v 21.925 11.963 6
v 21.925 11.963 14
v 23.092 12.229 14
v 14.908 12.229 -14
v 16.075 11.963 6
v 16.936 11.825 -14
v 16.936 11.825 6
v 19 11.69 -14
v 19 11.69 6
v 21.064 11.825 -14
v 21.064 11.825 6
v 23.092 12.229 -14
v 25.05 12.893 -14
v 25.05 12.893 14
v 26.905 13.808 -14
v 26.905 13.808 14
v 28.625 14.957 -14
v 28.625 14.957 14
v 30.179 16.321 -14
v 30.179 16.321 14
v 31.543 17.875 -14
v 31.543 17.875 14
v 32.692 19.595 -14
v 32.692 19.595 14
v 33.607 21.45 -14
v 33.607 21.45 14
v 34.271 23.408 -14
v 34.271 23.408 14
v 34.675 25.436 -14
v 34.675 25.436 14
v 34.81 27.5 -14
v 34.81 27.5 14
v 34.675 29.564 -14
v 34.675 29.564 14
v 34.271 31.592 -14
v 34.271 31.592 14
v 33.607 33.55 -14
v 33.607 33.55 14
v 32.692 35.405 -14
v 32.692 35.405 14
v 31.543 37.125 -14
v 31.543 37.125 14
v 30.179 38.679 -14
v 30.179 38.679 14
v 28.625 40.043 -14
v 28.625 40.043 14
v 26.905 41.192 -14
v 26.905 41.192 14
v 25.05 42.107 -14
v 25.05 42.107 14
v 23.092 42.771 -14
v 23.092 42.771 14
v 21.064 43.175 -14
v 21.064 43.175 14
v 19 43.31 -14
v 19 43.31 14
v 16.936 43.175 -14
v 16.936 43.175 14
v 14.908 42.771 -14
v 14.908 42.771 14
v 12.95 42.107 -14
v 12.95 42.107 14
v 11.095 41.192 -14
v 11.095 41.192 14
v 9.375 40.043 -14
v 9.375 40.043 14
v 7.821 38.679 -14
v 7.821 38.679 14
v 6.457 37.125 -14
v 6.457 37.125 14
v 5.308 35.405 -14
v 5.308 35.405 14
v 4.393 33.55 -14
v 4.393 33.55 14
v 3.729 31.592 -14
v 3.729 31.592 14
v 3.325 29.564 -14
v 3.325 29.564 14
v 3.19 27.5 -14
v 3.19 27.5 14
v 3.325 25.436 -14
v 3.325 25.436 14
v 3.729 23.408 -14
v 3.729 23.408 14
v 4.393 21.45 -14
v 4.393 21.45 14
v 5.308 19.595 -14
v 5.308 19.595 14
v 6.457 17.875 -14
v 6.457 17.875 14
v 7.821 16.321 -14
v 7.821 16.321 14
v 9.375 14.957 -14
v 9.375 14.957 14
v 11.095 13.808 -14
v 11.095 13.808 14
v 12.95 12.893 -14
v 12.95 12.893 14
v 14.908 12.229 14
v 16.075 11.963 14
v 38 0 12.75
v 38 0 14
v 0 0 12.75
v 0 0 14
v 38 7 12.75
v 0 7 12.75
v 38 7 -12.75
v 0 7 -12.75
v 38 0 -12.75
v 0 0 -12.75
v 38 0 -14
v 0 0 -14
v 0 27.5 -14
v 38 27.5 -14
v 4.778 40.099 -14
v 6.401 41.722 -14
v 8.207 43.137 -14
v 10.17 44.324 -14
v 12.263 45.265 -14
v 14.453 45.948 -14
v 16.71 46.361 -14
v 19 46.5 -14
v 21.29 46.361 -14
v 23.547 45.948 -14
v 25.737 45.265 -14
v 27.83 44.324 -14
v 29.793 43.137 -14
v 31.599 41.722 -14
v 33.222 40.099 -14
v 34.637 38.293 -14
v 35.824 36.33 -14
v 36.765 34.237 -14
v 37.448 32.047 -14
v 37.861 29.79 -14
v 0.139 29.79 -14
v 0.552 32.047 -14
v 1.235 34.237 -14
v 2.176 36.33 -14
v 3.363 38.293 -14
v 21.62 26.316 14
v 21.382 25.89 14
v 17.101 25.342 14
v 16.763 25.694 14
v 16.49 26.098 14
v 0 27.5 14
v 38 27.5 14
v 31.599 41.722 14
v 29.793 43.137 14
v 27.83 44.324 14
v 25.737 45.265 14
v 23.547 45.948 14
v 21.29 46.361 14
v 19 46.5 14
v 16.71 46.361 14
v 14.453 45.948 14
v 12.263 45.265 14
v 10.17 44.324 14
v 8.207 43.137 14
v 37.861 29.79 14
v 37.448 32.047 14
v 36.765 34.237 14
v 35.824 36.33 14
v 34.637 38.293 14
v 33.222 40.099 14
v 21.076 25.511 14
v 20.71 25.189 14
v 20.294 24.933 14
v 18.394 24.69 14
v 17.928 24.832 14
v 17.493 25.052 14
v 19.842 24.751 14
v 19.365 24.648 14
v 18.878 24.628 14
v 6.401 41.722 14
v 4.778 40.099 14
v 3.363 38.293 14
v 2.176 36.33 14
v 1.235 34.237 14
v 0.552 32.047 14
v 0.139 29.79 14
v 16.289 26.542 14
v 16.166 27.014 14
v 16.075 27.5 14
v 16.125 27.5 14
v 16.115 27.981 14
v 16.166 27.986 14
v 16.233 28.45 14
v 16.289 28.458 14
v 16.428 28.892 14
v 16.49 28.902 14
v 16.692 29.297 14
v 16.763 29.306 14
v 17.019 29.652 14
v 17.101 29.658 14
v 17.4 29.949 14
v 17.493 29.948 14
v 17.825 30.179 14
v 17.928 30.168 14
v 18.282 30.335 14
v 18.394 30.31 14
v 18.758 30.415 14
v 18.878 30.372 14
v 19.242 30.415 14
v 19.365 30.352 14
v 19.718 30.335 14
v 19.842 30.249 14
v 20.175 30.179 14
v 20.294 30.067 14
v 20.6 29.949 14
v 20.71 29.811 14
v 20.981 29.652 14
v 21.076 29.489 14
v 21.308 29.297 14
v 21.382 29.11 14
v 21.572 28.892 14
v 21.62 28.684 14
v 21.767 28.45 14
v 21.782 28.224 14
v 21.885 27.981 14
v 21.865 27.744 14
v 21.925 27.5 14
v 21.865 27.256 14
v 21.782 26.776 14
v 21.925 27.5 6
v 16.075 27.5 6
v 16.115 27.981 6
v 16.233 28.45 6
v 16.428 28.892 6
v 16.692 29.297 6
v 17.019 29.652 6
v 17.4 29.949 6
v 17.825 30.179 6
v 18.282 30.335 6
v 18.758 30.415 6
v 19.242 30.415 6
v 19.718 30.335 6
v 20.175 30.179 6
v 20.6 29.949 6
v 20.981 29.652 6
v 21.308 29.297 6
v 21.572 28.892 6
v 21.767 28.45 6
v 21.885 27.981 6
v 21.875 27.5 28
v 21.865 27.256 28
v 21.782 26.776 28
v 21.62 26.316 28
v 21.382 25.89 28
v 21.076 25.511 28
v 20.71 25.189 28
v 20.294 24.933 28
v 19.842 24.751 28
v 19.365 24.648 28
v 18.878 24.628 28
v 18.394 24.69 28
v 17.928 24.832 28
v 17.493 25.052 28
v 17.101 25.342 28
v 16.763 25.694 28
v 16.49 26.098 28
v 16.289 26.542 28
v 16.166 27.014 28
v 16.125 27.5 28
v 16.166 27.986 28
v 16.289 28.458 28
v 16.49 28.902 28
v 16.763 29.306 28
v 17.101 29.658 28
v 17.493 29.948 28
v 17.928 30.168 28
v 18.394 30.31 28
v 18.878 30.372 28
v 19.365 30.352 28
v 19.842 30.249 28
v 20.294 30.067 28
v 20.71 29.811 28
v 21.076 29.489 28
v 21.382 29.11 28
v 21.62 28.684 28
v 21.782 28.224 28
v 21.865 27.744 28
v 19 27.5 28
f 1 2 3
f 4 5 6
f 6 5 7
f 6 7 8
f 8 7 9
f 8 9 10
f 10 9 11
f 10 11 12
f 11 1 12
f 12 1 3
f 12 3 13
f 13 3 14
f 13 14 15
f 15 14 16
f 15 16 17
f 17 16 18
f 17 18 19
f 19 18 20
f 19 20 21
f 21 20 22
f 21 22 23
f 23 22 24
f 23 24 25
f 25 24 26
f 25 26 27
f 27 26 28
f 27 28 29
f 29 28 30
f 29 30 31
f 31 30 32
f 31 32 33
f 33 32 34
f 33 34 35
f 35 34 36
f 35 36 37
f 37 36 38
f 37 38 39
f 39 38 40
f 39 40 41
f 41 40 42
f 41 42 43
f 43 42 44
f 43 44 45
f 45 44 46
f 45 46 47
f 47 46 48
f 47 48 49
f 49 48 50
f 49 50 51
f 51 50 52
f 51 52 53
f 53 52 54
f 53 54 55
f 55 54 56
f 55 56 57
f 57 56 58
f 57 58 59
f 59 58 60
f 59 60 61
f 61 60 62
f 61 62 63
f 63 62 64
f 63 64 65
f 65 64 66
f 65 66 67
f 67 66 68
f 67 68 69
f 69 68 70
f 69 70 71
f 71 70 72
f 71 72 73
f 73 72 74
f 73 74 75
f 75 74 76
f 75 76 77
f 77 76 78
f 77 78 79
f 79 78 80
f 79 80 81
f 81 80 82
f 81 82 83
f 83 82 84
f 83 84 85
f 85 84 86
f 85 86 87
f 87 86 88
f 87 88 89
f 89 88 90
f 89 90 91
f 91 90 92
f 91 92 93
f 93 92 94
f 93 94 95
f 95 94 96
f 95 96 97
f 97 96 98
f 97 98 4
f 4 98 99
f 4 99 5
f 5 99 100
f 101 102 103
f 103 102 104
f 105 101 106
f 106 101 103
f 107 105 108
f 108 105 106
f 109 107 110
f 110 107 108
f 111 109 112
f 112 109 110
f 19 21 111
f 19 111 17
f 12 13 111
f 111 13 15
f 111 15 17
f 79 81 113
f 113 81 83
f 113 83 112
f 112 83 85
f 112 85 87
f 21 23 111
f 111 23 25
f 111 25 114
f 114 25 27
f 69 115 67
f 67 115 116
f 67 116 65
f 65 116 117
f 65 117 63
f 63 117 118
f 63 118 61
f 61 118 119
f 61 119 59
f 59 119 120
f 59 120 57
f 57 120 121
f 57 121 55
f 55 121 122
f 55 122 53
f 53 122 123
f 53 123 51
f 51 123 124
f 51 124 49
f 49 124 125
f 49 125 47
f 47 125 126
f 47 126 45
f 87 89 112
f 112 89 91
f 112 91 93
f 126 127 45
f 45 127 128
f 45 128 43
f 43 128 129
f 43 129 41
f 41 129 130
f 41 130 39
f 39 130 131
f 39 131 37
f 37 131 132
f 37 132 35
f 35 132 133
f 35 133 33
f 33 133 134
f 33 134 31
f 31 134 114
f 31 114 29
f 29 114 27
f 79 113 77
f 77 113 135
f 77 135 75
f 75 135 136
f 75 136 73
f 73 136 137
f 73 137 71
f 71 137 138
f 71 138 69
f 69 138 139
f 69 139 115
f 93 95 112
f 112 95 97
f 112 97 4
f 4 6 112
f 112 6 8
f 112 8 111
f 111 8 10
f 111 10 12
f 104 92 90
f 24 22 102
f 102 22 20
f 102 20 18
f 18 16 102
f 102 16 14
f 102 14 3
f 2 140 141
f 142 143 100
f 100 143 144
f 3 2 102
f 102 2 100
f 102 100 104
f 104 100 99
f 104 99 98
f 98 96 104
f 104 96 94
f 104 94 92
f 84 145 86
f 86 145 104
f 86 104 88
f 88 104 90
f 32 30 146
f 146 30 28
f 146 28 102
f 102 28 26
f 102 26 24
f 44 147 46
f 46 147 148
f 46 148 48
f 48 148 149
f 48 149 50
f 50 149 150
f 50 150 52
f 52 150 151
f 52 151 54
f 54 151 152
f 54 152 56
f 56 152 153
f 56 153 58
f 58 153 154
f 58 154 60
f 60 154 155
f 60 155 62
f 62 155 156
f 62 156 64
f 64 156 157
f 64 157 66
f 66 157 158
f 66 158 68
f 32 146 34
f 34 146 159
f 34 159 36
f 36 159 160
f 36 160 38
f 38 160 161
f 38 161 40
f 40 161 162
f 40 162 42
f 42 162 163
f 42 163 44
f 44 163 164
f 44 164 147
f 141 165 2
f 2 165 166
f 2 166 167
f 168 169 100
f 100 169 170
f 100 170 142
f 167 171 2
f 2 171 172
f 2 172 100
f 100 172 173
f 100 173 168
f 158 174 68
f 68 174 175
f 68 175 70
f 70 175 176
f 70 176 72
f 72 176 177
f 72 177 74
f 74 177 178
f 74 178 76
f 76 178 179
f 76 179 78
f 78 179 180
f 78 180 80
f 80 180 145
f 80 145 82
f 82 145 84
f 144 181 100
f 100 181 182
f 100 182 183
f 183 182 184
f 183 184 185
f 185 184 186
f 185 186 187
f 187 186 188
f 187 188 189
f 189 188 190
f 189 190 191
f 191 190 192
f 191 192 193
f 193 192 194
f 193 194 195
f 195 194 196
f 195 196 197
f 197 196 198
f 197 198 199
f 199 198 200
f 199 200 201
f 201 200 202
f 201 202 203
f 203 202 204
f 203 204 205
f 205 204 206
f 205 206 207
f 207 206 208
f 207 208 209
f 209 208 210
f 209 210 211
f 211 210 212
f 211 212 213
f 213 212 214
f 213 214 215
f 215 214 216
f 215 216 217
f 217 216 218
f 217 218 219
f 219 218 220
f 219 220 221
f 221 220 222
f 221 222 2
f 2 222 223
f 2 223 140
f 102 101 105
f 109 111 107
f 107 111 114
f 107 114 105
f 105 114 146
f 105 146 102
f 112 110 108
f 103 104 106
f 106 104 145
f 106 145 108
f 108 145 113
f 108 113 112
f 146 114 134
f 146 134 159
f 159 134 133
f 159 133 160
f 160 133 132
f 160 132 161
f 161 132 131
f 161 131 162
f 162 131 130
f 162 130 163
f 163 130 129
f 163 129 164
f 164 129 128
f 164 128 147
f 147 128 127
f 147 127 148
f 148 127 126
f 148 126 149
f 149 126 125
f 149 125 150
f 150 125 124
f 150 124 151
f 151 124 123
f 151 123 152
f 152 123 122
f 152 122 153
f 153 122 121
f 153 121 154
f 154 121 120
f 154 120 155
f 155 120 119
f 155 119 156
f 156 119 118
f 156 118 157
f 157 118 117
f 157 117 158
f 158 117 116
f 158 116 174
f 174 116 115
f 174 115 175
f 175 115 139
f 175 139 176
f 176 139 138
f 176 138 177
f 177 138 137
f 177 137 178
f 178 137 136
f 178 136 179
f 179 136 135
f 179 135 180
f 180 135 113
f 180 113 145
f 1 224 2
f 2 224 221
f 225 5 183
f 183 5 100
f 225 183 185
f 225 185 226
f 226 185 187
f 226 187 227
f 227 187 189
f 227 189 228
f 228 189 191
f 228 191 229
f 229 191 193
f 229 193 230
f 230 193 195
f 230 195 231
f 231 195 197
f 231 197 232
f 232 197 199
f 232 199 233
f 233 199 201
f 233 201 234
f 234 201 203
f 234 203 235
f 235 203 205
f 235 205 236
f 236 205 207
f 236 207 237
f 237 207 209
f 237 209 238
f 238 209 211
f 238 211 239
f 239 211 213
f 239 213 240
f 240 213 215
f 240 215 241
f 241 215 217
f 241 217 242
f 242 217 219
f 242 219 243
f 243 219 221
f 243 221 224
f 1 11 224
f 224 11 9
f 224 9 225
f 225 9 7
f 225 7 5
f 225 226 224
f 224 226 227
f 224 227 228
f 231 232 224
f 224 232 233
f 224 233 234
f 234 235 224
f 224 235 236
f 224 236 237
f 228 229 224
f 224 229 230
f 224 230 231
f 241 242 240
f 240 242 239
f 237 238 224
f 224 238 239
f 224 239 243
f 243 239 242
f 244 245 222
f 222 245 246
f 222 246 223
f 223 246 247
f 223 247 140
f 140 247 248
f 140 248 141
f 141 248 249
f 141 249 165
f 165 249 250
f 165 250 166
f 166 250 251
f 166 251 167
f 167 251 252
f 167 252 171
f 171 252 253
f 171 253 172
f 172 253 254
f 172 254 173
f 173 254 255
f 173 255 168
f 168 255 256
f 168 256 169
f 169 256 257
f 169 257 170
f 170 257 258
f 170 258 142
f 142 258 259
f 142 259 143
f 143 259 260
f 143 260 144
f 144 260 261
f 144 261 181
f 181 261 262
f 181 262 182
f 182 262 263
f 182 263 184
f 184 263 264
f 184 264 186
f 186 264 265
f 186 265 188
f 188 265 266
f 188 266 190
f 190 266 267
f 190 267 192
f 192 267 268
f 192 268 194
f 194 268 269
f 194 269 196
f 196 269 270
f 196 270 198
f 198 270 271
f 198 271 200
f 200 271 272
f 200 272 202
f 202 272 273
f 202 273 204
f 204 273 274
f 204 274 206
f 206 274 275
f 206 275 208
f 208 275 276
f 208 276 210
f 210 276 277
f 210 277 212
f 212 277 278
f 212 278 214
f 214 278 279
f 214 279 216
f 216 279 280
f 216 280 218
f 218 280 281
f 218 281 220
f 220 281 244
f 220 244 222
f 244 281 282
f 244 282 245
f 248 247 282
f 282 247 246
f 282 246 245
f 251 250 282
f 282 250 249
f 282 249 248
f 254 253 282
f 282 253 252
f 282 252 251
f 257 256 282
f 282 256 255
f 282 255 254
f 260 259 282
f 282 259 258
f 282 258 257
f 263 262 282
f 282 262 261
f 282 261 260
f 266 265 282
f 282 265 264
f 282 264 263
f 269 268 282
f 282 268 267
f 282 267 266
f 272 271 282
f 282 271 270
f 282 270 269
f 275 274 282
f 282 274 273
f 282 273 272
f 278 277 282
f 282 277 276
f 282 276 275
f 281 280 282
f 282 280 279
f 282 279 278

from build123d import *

# Parameters (mm, degrees)
BOSS_EXTRUDE1_DEPTH = 38
BOSS_EXTRUDE2_DEPTH = 14
SKETCH3_R           = 15.81
CUT_EXTRUDE1_DEPTH  = 67.258961658
BOSS_EXTRUDE3_DEPTH = 8
SKETCH5_R           = 2.875
BOSS_EXTRUDE4_DEPTH = 14


with BuildPart() as part:
    # Sketch1 → Boss-Extrude1 (new body)
    with BuildSketch(Plane(origin=(0, 0, 0), x_dir=(0, 0, -1), z_dir=(1, 0, 0))):
        Polygon((-12.75, 0), (-12.75, 7), (12.75, 7), (12.75, 0), (14, 0), (14, 8.5), (-14, 8.5), (-14, 0), align=None)
    extrude(amount=BOSS_EXTRUDE1_DEPTH)

    # Sketch2 → Boss-Extrude2 (add, symmetric)
    with BuildSketch(Plane.XY):
        with BuildLine():
            Line((0, 27.5), (0, 8.5))
            Line((0, 8.5), (38, 8.5))
            Line((38, 8.5), (38, 27.5))
            ThreePointArc((38, 27.5), (19, 46.5), (0, 27.5))
        make_face()
    extrude(amount=BOSS_EXTRUDE2_DEPTH, both=True)

    # Sketch3 → Cut-Extrude1 (cut, through all)
    with BuildSketch(Plane.XY.offset(14)):
        with Locations((19, 27.5)):
            Circle(SKETCH3_R)
    extrude(amount=-CUT_EXTRUDE1_DEPTH, mode=Mode.SUBTRACT)

    # Sketch4 → Boss-Extrude3 (add)
    with BuildSketch(Plane.XY.offset(14)):
        with BuildLine():
            Line((21.925, 27.5), (21.925, 11.962932226))
            ThreePointArc((21.925, 11.962932226), (19, 11.69), (16.075, 11.962932226))
            Line((16.075, 11.962932226), (16.075, 27.5))
            ThreePointArc((16.075, 27.5), (19, 30.425), (21.925, 27.5))
        make_face()
    extrude(amount=-BOSS_EXTRUDE3_DEPTH)

    # Sketch5 → Boss-Extrude4 (add)
    with BuildSketch(Plane.XY.offset(14)):
        with Locations(Location((19, 27.5, 0), (0, 0, 180))):
            Circle(SKETCH5_R)
    extrude(amount=BOSS_EXTRUDE4_DEPTH)


solid = part.part
